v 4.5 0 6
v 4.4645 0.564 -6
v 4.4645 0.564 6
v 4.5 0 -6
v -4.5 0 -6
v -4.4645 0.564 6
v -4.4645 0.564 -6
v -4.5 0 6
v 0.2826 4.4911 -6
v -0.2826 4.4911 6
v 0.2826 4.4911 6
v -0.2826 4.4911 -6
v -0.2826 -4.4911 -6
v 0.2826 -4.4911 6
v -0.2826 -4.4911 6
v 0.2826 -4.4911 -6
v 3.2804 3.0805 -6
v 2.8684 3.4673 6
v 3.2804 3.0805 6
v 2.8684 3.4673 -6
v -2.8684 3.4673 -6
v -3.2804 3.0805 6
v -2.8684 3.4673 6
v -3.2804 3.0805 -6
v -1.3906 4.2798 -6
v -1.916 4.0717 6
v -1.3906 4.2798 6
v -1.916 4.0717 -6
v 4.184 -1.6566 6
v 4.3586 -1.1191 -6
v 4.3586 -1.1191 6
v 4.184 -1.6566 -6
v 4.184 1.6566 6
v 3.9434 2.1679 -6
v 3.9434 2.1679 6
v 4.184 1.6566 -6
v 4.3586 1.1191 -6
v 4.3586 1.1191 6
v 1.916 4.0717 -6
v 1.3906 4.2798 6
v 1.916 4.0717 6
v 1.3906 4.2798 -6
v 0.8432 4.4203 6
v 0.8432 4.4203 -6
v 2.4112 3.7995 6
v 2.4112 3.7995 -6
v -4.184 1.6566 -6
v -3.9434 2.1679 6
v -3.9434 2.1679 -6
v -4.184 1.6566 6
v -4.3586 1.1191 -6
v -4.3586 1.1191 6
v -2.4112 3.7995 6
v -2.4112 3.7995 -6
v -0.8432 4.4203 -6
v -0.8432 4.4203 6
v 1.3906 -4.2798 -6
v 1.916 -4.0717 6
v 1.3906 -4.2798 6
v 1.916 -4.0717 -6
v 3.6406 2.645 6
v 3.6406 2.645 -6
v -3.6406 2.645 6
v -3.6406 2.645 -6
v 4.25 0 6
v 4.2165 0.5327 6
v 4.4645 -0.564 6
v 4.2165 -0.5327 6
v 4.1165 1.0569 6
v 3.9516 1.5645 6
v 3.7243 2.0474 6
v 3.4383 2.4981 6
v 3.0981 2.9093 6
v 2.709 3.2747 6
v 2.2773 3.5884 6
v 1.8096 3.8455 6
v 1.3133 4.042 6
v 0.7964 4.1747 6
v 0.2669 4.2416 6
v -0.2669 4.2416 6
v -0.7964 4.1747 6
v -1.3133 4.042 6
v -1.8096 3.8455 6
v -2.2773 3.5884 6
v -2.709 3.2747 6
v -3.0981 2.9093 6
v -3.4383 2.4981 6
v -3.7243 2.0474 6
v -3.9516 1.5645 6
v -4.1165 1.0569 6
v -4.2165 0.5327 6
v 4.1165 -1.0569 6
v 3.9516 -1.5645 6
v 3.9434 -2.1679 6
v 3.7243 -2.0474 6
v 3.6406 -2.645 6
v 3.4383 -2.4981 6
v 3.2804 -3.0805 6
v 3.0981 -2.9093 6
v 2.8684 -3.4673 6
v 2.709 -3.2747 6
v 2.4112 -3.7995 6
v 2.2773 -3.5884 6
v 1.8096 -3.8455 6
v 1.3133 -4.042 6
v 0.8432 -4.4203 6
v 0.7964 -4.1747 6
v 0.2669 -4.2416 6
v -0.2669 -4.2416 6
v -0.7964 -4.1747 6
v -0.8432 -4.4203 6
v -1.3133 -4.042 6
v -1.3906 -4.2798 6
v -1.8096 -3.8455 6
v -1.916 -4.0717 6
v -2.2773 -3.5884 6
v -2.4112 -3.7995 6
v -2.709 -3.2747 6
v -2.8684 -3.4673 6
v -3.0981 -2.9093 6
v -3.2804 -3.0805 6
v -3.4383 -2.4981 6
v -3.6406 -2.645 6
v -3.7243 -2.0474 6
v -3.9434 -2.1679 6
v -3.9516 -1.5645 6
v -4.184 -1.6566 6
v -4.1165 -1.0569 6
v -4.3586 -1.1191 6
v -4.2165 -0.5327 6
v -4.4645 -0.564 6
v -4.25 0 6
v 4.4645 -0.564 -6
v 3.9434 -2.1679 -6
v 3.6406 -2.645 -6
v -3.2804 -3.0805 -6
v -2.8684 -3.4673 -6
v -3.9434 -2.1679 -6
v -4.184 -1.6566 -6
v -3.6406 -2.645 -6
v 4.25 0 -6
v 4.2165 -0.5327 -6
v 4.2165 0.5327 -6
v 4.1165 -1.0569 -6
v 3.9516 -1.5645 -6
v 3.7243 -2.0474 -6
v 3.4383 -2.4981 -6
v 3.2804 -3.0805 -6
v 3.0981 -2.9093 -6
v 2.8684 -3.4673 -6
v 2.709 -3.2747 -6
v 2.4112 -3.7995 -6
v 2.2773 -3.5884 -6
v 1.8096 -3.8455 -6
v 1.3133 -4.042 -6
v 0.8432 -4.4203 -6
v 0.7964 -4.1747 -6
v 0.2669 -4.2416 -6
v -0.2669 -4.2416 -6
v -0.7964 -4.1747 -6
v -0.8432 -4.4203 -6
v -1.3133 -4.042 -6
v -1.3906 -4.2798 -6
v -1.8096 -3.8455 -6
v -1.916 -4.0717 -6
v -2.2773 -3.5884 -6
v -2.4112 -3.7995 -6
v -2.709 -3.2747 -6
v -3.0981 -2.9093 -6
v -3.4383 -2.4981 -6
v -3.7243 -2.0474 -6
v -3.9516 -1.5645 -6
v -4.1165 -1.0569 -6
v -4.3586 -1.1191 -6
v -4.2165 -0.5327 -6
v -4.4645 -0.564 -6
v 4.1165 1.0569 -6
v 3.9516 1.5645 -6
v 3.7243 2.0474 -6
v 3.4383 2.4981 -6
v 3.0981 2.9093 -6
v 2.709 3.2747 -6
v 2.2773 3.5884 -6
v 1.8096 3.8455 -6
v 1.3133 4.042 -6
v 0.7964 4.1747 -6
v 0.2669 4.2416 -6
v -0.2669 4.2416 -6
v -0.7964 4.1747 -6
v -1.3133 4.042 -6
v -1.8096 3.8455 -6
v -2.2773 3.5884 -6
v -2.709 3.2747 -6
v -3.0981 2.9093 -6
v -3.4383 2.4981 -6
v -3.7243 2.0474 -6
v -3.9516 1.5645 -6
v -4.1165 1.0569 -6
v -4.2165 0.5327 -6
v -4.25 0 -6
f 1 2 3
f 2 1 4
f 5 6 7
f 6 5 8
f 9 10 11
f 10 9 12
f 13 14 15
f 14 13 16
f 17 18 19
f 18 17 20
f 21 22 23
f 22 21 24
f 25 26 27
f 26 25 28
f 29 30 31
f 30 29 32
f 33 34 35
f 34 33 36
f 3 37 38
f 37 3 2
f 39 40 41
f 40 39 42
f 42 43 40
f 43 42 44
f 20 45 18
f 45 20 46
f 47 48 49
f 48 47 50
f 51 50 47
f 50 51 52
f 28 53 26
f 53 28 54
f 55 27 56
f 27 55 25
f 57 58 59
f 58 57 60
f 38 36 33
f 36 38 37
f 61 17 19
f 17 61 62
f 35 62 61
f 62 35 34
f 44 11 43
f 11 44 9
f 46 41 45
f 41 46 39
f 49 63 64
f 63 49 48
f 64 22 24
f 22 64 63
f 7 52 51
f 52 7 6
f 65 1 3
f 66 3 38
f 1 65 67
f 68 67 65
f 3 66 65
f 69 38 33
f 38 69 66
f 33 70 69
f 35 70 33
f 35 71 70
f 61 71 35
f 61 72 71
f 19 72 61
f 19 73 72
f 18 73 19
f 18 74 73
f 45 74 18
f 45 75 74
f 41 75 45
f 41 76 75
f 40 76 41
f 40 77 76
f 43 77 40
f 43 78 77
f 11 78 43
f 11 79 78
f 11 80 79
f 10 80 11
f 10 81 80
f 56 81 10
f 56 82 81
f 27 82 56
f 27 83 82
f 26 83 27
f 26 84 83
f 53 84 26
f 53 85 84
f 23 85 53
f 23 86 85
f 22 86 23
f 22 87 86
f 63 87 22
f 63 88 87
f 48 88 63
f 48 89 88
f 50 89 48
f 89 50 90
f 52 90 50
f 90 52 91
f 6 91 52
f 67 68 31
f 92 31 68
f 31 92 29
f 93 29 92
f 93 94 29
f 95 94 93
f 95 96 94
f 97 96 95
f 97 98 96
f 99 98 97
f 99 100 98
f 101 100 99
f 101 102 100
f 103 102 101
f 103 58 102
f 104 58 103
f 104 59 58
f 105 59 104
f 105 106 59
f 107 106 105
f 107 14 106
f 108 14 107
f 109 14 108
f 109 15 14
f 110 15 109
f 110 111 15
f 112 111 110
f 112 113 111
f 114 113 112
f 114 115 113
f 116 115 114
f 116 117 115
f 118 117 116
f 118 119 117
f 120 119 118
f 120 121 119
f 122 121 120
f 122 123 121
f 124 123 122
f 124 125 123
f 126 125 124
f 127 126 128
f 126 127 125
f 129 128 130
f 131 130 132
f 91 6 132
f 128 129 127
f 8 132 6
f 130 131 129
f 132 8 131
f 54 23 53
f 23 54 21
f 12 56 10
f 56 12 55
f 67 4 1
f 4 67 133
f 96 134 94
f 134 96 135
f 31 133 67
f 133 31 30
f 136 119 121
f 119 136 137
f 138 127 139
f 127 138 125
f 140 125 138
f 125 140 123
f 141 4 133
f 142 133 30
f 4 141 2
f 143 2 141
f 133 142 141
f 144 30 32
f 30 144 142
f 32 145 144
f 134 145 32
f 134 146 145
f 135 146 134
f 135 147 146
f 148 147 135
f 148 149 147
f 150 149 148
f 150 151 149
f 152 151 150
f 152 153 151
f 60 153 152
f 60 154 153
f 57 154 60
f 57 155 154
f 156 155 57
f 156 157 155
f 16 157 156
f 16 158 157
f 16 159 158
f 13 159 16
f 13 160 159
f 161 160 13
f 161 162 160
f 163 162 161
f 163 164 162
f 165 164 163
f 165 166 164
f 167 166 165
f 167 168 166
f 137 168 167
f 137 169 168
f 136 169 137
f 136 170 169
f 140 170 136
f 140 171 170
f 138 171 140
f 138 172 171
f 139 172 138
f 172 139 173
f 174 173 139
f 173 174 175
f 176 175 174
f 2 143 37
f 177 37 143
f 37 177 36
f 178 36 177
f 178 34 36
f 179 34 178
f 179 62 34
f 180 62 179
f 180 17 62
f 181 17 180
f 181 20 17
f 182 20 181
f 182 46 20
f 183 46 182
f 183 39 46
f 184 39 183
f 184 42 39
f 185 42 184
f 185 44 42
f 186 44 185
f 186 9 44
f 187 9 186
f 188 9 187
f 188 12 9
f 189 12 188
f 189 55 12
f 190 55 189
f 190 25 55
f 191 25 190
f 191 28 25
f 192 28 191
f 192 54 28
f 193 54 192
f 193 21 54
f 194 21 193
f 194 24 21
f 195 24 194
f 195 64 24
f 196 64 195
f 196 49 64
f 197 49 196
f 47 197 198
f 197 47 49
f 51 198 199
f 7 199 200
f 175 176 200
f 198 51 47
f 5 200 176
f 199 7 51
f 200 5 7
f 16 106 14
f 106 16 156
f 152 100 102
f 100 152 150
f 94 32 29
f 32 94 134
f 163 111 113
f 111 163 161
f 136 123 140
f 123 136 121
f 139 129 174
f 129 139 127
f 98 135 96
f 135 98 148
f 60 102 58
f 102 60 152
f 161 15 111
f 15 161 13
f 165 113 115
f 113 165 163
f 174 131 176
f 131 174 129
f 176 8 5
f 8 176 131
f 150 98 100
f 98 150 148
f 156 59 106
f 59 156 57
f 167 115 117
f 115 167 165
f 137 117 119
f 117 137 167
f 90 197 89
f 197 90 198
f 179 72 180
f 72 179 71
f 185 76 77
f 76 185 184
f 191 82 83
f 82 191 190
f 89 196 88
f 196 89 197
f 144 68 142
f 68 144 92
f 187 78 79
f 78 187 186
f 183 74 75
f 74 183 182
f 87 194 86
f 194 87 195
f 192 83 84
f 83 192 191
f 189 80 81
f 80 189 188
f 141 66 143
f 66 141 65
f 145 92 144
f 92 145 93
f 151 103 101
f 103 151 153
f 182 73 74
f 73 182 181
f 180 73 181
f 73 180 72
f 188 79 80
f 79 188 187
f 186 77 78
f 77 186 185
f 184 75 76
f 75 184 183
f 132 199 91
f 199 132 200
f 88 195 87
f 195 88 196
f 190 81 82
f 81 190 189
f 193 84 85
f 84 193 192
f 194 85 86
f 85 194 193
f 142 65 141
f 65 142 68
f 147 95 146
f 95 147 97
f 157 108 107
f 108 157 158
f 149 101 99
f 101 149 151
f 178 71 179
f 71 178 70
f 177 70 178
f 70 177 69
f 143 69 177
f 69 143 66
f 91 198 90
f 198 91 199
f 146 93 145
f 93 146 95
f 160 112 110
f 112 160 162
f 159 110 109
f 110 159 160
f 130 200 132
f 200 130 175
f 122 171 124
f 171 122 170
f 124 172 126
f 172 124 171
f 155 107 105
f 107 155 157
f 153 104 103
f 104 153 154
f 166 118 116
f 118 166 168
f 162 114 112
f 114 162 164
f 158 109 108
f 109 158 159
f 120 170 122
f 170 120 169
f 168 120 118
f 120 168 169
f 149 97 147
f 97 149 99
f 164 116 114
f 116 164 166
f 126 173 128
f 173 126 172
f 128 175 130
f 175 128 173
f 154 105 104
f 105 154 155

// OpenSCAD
$fn = 50;


difference() {
	union() {
		translate(v = [0, 0, -6.0000000000]) {
			cylinder(h = 12, r = 4.5000000000);
		}
	}
	union() {
		translate(v = [0, 0, -100.0000000000]) {
			cylinder(h = 200, r = 4.2500000000);
		}
	}
}
